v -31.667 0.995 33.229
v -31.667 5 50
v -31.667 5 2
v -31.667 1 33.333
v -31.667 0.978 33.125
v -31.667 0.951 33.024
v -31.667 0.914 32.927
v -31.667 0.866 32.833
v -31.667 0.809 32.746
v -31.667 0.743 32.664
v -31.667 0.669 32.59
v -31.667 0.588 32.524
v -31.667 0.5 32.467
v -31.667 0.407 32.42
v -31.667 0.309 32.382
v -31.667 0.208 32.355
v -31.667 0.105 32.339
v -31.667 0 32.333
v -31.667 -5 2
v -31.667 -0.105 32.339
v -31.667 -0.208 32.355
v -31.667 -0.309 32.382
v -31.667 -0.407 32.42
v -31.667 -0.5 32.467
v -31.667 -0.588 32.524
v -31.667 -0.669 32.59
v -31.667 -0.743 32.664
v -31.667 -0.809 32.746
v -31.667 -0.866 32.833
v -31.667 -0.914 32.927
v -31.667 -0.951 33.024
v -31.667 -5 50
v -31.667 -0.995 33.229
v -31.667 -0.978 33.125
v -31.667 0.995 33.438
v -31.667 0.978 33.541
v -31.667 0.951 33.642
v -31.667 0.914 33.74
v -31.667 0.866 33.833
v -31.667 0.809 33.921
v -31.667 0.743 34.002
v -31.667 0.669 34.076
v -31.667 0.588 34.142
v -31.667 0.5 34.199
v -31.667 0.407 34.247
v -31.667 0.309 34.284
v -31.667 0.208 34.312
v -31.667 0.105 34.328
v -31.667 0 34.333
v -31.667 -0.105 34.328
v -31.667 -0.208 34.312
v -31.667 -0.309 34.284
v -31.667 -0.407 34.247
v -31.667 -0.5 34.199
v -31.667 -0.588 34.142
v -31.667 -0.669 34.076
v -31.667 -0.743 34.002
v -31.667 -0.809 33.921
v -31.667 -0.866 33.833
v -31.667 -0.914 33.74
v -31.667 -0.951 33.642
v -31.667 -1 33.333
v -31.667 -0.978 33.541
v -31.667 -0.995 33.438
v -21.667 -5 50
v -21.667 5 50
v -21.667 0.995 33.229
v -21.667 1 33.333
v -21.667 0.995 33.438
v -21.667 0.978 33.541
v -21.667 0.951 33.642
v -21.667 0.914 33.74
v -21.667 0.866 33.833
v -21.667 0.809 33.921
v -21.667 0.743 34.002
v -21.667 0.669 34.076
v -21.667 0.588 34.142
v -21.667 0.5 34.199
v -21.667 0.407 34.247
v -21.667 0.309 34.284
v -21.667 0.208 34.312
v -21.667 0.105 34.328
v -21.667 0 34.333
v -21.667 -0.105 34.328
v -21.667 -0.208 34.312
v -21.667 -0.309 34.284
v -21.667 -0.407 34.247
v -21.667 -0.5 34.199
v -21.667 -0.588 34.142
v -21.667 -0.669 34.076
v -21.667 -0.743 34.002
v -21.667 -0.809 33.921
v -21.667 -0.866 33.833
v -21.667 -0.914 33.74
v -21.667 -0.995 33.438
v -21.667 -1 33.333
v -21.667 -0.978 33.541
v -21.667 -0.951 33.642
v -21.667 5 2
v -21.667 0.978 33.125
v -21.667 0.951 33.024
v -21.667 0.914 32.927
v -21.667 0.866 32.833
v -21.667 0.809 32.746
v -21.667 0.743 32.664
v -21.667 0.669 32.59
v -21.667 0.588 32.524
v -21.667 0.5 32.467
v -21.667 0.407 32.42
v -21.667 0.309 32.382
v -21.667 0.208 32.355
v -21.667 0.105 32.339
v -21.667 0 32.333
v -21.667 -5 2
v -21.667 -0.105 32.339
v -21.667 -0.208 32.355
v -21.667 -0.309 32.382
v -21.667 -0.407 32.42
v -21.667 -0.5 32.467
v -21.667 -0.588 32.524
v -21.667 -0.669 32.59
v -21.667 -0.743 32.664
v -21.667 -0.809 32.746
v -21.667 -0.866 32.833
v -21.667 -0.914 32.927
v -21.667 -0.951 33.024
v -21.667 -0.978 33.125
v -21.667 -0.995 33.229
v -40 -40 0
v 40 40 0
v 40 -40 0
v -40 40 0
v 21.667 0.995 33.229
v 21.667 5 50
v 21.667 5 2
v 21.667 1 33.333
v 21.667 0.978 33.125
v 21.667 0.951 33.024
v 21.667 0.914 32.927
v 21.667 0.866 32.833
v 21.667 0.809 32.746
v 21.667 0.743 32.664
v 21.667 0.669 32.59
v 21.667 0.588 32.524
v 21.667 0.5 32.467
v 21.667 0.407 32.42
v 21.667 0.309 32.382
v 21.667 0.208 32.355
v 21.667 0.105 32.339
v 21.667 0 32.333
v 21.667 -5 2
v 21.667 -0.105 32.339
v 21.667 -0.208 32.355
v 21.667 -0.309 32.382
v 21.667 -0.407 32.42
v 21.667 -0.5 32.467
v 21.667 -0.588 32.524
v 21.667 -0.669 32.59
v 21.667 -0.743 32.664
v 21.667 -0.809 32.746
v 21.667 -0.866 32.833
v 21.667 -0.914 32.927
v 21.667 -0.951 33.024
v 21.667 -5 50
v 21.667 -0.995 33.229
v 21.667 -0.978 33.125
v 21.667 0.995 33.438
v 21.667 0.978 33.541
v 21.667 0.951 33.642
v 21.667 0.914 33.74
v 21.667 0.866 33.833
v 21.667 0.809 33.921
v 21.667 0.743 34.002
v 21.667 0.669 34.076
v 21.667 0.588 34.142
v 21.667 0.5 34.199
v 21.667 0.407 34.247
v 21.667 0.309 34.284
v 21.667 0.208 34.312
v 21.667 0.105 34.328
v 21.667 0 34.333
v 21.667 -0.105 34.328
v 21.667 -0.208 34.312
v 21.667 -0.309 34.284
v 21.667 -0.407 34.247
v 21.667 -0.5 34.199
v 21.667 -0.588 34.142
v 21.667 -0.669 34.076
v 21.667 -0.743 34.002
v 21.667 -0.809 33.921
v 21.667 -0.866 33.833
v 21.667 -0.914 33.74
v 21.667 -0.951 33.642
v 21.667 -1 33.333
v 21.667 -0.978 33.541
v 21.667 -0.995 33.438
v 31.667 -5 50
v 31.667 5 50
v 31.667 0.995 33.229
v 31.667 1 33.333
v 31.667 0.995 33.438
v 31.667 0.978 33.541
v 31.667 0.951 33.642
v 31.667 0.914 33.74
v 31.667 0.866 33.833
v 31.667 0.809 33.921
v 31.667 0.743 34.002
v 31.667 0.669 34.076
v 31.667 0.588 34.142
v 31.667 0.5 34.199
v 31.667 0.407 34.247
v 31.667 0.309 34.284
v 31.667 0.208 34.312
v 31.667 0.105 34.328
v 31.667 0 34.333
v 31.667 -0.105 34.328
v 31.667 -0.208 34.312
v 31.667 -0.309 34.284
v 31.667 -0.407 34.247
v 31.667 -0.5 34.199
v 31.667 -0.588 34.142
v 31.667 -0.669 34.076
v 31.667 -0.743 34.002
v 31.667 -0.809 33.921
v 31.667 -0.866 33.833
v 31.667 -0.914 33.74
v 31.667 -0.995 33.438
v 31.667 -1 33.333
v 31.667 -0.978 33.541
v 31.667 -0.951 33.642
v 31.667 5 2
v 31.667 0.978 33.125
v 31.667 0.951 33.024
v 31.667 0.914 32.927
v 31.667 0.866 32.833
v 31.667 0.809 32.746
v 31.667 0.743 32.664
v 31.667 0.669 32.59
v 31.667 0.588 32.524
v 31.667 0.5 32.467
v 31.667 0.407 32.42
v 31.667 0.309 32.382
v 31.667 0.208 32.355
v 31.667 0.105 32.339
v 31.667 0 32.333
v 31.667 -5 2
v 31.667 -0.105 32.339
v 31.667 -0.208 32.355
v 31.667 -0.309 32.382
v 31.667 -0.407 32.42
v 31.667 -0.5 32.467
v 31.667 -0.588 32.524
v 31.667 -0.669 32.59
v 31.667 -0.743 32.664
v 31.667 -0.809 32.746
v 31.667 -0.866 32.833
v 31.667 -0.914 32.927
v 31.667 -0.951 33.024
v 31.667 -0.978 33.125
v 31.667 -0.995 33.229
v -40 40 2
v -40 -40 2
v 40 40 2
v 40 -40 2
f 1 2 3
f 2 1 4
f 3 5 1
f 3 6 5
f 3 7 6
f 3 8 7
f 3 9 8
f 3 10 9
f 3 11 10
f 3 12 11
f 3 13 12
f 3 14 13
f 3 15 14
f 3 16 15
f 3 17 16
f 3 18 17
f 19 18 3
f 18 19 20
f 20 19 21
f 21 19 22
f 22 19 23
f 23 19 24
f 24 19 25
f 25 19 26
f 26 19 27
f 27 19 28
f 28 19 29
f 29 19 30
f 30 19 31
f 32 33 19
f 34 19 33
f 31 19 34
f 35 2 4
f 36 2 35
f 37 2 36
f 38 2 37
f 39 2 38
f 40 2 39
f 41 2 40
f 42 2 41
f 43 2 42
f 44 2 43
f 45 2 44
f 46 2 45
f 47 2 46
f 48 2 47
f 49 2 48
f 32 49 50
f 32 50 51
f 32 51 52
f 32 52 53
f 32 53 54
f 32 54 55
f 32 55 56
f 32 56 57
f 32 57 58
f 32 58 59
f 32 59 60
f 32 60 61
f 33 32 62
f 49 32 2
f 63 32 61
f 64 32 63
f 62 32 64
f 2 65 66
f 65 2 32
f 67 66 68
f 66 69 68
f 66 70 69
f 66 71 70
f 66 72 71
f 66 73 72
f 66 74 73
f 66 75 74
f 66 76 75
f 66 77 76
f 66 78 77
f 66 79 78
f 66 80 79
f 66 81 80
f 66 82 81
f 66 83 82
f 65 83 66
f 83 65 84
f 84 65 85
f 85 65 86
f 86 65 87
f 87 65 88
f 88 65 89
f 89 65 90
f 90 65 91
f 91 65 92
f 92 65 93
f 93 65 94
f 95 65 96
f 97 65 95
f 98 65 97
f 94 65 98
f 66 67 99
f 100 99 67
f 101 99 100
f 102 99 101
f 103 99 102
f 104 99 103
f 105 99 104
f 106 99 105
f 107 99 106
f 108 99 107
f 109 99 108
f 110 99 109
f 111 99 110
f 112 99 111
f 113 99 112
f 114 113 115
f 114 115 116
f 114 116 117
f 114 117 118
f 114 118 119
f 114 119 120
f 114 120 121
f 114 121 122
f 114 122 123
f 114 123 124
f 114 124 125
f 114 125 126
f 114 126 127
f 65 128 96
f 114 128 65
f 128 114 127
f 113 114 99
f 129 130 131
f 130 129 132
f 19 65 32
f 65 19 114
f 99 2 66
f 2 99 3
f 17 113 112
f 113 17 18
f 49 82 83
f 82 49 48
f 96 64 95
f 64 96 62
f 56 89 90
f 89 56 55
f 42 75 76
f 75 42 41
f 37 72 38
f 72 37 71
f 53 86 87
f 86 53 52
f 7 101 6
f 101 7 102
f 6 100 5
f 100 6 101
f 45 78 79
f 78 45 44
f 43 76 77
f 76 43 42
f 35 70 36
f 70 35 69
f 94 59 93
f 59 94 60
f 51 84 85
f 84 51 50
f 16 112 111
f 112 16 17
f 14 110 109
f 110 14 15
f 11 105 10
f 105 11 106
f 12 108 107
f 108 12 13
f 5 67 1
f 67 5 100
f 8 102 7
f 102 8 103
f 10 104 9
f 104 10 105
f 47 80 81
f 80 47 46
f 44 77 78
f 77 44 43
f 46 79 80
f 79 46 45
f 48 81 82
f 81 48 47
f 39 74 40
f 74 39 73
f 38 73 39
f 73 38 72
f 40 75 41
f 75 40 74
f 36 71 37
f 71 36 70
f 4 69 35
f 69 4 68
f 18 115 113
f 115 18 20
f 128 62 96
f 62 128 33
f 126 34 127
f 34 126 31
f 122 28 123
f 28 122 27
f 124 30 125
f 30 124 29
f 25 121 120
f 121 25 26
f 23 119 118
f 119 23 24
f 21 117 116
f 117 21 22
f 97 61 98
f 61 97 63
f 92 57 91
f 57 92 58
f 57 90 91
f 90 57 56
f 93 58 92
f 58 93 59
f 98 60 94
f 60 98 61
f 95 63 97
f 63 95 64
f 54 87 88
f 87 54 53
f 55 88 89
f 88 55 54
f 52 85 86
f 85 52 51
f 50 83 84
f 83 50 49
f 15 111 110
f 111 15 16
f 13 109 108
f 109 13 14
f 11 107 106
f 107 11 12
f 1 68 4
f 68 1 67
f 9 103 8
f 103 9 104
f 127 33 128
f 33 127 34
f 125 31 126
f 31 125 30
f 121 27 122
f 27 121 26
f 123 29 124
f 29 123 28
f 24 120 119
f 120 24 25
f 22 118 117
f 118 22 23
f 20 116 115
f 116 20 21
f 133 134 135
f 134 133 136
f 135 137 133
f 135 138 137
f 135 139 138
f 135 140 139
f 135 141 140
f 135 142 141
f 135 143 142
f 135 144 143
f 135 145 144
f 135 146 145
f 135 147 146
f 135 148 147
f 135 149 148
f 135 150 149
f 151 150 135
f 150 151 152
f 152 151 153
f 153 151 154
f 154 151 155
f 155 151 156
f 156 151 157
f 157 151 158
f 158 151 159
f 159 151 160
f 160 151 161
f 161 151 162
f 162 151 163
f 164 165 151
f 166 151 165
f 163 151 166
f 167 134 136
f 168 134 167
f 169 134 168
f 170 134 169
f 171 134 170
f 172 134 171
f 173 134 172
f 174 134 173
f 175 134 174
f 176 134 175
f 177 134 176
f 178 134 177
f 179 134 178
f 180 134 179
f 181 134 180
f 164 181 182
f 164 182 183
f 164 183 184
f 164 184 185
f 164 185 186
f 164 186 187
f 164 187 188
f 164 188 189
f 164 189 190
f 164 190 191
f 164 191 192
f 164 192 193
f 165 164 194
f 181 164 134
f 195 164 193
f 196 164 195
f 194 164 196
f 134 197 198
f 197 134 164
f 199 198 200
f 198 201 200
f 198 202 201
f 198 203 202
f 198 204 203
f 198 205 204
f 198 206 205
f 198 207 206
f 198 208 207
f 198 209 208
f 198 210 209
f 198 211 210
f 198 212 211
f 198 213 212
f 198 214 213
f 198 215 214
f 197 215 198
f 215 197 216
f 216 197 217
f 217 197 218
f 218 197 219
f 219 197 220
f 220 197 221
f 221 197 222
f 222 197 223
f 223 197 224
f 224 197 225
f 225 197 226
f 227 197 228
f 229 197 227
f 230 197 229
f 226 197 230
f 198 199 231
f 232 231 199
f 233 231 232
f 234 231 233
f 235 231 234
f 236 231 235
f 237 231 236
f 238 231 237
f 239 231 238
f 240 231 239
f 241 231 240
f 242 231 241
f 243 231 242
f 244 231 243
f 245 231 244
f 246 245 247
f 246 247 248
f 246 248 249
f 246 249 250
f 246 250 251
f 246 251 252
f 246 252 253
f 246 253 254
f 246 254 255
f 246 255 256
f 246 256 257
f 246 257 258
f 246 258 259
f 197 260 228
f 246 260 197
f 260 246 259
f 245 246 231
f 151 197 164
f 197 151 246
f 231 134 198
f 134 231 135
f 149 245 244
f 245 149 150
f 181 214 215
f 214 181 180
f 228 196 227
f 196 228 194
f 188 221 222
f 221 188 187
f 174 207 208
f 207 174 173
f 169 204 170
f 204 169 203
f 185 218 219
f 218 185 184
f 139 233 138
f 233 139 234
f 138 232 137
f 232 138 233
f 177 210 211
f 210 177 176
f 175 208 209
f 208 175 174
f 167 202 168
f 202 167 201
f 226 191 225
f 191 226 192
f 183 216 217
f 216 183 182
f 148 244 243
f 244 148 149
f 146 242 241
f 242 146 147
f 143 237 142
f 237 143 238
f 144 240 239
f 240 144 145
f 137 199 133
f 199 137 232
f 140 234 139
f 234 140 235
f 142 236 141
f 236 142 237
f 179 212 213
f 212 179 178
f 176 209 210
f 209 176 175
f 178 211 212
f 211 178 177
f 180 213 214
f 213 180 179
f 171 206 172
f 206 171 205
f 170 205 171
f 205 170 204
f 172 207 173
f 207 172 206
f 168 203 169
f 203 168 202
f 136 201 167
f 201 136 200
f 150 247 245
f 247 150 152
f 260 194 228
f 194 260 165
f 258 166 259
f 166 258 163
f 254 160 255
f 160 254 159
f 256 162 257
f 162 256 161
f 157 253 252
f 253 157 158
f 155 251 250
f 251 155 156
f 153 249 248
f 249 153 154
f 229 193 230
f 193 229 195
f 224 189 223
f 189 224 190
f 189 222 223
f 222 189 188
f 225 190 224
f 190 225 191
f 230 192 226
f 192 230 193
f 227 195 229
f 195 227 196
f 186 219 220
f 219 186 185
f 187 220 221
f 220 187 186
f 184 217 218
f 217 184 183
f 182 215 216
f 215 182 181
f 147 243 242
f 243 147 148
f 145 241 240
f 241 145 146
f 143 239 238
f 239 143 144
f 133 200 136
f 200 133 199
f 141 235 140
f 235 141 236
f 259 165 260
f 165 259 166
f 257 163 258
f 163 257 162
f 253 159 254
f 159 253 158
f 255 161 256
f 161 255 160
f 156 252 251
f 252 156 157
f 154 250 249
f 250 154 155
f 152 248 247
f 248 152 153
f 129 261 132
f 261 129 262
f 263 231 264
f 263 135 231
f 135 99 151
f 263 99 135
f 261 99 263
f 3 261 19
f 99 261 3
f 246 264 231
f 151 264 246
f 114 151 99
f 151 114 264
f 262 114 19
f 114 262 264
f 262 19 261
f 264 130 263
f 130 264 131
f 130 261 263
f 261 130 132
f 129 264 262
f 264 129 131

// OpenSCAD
$fa=6;
$fs=0.05;
p = 0.01;
p2 = 2*p;

a = 80;
b = 80;
t = 2;

aa = a/3;

top_a = 10;
top_b = 10;
top_h = 50;

r = 1;
r_h = top_h * 2 / 3;

module holder() {
    difference() {
        translate([0, 0, top_h/2])
        cube([top_a, top_b, top_h], center=true);
        translate([0, 0, r_h])
        rotate([0, 90, 0])
        cylinder(h=top_a+p2, d=2*r, center=true);
    }
}

translate([0, 0, t/2])
cube([a, b, t], center=true);
translate([-aa, 0, 0])
holder();
translate([aa, 0, 0])
holder();
